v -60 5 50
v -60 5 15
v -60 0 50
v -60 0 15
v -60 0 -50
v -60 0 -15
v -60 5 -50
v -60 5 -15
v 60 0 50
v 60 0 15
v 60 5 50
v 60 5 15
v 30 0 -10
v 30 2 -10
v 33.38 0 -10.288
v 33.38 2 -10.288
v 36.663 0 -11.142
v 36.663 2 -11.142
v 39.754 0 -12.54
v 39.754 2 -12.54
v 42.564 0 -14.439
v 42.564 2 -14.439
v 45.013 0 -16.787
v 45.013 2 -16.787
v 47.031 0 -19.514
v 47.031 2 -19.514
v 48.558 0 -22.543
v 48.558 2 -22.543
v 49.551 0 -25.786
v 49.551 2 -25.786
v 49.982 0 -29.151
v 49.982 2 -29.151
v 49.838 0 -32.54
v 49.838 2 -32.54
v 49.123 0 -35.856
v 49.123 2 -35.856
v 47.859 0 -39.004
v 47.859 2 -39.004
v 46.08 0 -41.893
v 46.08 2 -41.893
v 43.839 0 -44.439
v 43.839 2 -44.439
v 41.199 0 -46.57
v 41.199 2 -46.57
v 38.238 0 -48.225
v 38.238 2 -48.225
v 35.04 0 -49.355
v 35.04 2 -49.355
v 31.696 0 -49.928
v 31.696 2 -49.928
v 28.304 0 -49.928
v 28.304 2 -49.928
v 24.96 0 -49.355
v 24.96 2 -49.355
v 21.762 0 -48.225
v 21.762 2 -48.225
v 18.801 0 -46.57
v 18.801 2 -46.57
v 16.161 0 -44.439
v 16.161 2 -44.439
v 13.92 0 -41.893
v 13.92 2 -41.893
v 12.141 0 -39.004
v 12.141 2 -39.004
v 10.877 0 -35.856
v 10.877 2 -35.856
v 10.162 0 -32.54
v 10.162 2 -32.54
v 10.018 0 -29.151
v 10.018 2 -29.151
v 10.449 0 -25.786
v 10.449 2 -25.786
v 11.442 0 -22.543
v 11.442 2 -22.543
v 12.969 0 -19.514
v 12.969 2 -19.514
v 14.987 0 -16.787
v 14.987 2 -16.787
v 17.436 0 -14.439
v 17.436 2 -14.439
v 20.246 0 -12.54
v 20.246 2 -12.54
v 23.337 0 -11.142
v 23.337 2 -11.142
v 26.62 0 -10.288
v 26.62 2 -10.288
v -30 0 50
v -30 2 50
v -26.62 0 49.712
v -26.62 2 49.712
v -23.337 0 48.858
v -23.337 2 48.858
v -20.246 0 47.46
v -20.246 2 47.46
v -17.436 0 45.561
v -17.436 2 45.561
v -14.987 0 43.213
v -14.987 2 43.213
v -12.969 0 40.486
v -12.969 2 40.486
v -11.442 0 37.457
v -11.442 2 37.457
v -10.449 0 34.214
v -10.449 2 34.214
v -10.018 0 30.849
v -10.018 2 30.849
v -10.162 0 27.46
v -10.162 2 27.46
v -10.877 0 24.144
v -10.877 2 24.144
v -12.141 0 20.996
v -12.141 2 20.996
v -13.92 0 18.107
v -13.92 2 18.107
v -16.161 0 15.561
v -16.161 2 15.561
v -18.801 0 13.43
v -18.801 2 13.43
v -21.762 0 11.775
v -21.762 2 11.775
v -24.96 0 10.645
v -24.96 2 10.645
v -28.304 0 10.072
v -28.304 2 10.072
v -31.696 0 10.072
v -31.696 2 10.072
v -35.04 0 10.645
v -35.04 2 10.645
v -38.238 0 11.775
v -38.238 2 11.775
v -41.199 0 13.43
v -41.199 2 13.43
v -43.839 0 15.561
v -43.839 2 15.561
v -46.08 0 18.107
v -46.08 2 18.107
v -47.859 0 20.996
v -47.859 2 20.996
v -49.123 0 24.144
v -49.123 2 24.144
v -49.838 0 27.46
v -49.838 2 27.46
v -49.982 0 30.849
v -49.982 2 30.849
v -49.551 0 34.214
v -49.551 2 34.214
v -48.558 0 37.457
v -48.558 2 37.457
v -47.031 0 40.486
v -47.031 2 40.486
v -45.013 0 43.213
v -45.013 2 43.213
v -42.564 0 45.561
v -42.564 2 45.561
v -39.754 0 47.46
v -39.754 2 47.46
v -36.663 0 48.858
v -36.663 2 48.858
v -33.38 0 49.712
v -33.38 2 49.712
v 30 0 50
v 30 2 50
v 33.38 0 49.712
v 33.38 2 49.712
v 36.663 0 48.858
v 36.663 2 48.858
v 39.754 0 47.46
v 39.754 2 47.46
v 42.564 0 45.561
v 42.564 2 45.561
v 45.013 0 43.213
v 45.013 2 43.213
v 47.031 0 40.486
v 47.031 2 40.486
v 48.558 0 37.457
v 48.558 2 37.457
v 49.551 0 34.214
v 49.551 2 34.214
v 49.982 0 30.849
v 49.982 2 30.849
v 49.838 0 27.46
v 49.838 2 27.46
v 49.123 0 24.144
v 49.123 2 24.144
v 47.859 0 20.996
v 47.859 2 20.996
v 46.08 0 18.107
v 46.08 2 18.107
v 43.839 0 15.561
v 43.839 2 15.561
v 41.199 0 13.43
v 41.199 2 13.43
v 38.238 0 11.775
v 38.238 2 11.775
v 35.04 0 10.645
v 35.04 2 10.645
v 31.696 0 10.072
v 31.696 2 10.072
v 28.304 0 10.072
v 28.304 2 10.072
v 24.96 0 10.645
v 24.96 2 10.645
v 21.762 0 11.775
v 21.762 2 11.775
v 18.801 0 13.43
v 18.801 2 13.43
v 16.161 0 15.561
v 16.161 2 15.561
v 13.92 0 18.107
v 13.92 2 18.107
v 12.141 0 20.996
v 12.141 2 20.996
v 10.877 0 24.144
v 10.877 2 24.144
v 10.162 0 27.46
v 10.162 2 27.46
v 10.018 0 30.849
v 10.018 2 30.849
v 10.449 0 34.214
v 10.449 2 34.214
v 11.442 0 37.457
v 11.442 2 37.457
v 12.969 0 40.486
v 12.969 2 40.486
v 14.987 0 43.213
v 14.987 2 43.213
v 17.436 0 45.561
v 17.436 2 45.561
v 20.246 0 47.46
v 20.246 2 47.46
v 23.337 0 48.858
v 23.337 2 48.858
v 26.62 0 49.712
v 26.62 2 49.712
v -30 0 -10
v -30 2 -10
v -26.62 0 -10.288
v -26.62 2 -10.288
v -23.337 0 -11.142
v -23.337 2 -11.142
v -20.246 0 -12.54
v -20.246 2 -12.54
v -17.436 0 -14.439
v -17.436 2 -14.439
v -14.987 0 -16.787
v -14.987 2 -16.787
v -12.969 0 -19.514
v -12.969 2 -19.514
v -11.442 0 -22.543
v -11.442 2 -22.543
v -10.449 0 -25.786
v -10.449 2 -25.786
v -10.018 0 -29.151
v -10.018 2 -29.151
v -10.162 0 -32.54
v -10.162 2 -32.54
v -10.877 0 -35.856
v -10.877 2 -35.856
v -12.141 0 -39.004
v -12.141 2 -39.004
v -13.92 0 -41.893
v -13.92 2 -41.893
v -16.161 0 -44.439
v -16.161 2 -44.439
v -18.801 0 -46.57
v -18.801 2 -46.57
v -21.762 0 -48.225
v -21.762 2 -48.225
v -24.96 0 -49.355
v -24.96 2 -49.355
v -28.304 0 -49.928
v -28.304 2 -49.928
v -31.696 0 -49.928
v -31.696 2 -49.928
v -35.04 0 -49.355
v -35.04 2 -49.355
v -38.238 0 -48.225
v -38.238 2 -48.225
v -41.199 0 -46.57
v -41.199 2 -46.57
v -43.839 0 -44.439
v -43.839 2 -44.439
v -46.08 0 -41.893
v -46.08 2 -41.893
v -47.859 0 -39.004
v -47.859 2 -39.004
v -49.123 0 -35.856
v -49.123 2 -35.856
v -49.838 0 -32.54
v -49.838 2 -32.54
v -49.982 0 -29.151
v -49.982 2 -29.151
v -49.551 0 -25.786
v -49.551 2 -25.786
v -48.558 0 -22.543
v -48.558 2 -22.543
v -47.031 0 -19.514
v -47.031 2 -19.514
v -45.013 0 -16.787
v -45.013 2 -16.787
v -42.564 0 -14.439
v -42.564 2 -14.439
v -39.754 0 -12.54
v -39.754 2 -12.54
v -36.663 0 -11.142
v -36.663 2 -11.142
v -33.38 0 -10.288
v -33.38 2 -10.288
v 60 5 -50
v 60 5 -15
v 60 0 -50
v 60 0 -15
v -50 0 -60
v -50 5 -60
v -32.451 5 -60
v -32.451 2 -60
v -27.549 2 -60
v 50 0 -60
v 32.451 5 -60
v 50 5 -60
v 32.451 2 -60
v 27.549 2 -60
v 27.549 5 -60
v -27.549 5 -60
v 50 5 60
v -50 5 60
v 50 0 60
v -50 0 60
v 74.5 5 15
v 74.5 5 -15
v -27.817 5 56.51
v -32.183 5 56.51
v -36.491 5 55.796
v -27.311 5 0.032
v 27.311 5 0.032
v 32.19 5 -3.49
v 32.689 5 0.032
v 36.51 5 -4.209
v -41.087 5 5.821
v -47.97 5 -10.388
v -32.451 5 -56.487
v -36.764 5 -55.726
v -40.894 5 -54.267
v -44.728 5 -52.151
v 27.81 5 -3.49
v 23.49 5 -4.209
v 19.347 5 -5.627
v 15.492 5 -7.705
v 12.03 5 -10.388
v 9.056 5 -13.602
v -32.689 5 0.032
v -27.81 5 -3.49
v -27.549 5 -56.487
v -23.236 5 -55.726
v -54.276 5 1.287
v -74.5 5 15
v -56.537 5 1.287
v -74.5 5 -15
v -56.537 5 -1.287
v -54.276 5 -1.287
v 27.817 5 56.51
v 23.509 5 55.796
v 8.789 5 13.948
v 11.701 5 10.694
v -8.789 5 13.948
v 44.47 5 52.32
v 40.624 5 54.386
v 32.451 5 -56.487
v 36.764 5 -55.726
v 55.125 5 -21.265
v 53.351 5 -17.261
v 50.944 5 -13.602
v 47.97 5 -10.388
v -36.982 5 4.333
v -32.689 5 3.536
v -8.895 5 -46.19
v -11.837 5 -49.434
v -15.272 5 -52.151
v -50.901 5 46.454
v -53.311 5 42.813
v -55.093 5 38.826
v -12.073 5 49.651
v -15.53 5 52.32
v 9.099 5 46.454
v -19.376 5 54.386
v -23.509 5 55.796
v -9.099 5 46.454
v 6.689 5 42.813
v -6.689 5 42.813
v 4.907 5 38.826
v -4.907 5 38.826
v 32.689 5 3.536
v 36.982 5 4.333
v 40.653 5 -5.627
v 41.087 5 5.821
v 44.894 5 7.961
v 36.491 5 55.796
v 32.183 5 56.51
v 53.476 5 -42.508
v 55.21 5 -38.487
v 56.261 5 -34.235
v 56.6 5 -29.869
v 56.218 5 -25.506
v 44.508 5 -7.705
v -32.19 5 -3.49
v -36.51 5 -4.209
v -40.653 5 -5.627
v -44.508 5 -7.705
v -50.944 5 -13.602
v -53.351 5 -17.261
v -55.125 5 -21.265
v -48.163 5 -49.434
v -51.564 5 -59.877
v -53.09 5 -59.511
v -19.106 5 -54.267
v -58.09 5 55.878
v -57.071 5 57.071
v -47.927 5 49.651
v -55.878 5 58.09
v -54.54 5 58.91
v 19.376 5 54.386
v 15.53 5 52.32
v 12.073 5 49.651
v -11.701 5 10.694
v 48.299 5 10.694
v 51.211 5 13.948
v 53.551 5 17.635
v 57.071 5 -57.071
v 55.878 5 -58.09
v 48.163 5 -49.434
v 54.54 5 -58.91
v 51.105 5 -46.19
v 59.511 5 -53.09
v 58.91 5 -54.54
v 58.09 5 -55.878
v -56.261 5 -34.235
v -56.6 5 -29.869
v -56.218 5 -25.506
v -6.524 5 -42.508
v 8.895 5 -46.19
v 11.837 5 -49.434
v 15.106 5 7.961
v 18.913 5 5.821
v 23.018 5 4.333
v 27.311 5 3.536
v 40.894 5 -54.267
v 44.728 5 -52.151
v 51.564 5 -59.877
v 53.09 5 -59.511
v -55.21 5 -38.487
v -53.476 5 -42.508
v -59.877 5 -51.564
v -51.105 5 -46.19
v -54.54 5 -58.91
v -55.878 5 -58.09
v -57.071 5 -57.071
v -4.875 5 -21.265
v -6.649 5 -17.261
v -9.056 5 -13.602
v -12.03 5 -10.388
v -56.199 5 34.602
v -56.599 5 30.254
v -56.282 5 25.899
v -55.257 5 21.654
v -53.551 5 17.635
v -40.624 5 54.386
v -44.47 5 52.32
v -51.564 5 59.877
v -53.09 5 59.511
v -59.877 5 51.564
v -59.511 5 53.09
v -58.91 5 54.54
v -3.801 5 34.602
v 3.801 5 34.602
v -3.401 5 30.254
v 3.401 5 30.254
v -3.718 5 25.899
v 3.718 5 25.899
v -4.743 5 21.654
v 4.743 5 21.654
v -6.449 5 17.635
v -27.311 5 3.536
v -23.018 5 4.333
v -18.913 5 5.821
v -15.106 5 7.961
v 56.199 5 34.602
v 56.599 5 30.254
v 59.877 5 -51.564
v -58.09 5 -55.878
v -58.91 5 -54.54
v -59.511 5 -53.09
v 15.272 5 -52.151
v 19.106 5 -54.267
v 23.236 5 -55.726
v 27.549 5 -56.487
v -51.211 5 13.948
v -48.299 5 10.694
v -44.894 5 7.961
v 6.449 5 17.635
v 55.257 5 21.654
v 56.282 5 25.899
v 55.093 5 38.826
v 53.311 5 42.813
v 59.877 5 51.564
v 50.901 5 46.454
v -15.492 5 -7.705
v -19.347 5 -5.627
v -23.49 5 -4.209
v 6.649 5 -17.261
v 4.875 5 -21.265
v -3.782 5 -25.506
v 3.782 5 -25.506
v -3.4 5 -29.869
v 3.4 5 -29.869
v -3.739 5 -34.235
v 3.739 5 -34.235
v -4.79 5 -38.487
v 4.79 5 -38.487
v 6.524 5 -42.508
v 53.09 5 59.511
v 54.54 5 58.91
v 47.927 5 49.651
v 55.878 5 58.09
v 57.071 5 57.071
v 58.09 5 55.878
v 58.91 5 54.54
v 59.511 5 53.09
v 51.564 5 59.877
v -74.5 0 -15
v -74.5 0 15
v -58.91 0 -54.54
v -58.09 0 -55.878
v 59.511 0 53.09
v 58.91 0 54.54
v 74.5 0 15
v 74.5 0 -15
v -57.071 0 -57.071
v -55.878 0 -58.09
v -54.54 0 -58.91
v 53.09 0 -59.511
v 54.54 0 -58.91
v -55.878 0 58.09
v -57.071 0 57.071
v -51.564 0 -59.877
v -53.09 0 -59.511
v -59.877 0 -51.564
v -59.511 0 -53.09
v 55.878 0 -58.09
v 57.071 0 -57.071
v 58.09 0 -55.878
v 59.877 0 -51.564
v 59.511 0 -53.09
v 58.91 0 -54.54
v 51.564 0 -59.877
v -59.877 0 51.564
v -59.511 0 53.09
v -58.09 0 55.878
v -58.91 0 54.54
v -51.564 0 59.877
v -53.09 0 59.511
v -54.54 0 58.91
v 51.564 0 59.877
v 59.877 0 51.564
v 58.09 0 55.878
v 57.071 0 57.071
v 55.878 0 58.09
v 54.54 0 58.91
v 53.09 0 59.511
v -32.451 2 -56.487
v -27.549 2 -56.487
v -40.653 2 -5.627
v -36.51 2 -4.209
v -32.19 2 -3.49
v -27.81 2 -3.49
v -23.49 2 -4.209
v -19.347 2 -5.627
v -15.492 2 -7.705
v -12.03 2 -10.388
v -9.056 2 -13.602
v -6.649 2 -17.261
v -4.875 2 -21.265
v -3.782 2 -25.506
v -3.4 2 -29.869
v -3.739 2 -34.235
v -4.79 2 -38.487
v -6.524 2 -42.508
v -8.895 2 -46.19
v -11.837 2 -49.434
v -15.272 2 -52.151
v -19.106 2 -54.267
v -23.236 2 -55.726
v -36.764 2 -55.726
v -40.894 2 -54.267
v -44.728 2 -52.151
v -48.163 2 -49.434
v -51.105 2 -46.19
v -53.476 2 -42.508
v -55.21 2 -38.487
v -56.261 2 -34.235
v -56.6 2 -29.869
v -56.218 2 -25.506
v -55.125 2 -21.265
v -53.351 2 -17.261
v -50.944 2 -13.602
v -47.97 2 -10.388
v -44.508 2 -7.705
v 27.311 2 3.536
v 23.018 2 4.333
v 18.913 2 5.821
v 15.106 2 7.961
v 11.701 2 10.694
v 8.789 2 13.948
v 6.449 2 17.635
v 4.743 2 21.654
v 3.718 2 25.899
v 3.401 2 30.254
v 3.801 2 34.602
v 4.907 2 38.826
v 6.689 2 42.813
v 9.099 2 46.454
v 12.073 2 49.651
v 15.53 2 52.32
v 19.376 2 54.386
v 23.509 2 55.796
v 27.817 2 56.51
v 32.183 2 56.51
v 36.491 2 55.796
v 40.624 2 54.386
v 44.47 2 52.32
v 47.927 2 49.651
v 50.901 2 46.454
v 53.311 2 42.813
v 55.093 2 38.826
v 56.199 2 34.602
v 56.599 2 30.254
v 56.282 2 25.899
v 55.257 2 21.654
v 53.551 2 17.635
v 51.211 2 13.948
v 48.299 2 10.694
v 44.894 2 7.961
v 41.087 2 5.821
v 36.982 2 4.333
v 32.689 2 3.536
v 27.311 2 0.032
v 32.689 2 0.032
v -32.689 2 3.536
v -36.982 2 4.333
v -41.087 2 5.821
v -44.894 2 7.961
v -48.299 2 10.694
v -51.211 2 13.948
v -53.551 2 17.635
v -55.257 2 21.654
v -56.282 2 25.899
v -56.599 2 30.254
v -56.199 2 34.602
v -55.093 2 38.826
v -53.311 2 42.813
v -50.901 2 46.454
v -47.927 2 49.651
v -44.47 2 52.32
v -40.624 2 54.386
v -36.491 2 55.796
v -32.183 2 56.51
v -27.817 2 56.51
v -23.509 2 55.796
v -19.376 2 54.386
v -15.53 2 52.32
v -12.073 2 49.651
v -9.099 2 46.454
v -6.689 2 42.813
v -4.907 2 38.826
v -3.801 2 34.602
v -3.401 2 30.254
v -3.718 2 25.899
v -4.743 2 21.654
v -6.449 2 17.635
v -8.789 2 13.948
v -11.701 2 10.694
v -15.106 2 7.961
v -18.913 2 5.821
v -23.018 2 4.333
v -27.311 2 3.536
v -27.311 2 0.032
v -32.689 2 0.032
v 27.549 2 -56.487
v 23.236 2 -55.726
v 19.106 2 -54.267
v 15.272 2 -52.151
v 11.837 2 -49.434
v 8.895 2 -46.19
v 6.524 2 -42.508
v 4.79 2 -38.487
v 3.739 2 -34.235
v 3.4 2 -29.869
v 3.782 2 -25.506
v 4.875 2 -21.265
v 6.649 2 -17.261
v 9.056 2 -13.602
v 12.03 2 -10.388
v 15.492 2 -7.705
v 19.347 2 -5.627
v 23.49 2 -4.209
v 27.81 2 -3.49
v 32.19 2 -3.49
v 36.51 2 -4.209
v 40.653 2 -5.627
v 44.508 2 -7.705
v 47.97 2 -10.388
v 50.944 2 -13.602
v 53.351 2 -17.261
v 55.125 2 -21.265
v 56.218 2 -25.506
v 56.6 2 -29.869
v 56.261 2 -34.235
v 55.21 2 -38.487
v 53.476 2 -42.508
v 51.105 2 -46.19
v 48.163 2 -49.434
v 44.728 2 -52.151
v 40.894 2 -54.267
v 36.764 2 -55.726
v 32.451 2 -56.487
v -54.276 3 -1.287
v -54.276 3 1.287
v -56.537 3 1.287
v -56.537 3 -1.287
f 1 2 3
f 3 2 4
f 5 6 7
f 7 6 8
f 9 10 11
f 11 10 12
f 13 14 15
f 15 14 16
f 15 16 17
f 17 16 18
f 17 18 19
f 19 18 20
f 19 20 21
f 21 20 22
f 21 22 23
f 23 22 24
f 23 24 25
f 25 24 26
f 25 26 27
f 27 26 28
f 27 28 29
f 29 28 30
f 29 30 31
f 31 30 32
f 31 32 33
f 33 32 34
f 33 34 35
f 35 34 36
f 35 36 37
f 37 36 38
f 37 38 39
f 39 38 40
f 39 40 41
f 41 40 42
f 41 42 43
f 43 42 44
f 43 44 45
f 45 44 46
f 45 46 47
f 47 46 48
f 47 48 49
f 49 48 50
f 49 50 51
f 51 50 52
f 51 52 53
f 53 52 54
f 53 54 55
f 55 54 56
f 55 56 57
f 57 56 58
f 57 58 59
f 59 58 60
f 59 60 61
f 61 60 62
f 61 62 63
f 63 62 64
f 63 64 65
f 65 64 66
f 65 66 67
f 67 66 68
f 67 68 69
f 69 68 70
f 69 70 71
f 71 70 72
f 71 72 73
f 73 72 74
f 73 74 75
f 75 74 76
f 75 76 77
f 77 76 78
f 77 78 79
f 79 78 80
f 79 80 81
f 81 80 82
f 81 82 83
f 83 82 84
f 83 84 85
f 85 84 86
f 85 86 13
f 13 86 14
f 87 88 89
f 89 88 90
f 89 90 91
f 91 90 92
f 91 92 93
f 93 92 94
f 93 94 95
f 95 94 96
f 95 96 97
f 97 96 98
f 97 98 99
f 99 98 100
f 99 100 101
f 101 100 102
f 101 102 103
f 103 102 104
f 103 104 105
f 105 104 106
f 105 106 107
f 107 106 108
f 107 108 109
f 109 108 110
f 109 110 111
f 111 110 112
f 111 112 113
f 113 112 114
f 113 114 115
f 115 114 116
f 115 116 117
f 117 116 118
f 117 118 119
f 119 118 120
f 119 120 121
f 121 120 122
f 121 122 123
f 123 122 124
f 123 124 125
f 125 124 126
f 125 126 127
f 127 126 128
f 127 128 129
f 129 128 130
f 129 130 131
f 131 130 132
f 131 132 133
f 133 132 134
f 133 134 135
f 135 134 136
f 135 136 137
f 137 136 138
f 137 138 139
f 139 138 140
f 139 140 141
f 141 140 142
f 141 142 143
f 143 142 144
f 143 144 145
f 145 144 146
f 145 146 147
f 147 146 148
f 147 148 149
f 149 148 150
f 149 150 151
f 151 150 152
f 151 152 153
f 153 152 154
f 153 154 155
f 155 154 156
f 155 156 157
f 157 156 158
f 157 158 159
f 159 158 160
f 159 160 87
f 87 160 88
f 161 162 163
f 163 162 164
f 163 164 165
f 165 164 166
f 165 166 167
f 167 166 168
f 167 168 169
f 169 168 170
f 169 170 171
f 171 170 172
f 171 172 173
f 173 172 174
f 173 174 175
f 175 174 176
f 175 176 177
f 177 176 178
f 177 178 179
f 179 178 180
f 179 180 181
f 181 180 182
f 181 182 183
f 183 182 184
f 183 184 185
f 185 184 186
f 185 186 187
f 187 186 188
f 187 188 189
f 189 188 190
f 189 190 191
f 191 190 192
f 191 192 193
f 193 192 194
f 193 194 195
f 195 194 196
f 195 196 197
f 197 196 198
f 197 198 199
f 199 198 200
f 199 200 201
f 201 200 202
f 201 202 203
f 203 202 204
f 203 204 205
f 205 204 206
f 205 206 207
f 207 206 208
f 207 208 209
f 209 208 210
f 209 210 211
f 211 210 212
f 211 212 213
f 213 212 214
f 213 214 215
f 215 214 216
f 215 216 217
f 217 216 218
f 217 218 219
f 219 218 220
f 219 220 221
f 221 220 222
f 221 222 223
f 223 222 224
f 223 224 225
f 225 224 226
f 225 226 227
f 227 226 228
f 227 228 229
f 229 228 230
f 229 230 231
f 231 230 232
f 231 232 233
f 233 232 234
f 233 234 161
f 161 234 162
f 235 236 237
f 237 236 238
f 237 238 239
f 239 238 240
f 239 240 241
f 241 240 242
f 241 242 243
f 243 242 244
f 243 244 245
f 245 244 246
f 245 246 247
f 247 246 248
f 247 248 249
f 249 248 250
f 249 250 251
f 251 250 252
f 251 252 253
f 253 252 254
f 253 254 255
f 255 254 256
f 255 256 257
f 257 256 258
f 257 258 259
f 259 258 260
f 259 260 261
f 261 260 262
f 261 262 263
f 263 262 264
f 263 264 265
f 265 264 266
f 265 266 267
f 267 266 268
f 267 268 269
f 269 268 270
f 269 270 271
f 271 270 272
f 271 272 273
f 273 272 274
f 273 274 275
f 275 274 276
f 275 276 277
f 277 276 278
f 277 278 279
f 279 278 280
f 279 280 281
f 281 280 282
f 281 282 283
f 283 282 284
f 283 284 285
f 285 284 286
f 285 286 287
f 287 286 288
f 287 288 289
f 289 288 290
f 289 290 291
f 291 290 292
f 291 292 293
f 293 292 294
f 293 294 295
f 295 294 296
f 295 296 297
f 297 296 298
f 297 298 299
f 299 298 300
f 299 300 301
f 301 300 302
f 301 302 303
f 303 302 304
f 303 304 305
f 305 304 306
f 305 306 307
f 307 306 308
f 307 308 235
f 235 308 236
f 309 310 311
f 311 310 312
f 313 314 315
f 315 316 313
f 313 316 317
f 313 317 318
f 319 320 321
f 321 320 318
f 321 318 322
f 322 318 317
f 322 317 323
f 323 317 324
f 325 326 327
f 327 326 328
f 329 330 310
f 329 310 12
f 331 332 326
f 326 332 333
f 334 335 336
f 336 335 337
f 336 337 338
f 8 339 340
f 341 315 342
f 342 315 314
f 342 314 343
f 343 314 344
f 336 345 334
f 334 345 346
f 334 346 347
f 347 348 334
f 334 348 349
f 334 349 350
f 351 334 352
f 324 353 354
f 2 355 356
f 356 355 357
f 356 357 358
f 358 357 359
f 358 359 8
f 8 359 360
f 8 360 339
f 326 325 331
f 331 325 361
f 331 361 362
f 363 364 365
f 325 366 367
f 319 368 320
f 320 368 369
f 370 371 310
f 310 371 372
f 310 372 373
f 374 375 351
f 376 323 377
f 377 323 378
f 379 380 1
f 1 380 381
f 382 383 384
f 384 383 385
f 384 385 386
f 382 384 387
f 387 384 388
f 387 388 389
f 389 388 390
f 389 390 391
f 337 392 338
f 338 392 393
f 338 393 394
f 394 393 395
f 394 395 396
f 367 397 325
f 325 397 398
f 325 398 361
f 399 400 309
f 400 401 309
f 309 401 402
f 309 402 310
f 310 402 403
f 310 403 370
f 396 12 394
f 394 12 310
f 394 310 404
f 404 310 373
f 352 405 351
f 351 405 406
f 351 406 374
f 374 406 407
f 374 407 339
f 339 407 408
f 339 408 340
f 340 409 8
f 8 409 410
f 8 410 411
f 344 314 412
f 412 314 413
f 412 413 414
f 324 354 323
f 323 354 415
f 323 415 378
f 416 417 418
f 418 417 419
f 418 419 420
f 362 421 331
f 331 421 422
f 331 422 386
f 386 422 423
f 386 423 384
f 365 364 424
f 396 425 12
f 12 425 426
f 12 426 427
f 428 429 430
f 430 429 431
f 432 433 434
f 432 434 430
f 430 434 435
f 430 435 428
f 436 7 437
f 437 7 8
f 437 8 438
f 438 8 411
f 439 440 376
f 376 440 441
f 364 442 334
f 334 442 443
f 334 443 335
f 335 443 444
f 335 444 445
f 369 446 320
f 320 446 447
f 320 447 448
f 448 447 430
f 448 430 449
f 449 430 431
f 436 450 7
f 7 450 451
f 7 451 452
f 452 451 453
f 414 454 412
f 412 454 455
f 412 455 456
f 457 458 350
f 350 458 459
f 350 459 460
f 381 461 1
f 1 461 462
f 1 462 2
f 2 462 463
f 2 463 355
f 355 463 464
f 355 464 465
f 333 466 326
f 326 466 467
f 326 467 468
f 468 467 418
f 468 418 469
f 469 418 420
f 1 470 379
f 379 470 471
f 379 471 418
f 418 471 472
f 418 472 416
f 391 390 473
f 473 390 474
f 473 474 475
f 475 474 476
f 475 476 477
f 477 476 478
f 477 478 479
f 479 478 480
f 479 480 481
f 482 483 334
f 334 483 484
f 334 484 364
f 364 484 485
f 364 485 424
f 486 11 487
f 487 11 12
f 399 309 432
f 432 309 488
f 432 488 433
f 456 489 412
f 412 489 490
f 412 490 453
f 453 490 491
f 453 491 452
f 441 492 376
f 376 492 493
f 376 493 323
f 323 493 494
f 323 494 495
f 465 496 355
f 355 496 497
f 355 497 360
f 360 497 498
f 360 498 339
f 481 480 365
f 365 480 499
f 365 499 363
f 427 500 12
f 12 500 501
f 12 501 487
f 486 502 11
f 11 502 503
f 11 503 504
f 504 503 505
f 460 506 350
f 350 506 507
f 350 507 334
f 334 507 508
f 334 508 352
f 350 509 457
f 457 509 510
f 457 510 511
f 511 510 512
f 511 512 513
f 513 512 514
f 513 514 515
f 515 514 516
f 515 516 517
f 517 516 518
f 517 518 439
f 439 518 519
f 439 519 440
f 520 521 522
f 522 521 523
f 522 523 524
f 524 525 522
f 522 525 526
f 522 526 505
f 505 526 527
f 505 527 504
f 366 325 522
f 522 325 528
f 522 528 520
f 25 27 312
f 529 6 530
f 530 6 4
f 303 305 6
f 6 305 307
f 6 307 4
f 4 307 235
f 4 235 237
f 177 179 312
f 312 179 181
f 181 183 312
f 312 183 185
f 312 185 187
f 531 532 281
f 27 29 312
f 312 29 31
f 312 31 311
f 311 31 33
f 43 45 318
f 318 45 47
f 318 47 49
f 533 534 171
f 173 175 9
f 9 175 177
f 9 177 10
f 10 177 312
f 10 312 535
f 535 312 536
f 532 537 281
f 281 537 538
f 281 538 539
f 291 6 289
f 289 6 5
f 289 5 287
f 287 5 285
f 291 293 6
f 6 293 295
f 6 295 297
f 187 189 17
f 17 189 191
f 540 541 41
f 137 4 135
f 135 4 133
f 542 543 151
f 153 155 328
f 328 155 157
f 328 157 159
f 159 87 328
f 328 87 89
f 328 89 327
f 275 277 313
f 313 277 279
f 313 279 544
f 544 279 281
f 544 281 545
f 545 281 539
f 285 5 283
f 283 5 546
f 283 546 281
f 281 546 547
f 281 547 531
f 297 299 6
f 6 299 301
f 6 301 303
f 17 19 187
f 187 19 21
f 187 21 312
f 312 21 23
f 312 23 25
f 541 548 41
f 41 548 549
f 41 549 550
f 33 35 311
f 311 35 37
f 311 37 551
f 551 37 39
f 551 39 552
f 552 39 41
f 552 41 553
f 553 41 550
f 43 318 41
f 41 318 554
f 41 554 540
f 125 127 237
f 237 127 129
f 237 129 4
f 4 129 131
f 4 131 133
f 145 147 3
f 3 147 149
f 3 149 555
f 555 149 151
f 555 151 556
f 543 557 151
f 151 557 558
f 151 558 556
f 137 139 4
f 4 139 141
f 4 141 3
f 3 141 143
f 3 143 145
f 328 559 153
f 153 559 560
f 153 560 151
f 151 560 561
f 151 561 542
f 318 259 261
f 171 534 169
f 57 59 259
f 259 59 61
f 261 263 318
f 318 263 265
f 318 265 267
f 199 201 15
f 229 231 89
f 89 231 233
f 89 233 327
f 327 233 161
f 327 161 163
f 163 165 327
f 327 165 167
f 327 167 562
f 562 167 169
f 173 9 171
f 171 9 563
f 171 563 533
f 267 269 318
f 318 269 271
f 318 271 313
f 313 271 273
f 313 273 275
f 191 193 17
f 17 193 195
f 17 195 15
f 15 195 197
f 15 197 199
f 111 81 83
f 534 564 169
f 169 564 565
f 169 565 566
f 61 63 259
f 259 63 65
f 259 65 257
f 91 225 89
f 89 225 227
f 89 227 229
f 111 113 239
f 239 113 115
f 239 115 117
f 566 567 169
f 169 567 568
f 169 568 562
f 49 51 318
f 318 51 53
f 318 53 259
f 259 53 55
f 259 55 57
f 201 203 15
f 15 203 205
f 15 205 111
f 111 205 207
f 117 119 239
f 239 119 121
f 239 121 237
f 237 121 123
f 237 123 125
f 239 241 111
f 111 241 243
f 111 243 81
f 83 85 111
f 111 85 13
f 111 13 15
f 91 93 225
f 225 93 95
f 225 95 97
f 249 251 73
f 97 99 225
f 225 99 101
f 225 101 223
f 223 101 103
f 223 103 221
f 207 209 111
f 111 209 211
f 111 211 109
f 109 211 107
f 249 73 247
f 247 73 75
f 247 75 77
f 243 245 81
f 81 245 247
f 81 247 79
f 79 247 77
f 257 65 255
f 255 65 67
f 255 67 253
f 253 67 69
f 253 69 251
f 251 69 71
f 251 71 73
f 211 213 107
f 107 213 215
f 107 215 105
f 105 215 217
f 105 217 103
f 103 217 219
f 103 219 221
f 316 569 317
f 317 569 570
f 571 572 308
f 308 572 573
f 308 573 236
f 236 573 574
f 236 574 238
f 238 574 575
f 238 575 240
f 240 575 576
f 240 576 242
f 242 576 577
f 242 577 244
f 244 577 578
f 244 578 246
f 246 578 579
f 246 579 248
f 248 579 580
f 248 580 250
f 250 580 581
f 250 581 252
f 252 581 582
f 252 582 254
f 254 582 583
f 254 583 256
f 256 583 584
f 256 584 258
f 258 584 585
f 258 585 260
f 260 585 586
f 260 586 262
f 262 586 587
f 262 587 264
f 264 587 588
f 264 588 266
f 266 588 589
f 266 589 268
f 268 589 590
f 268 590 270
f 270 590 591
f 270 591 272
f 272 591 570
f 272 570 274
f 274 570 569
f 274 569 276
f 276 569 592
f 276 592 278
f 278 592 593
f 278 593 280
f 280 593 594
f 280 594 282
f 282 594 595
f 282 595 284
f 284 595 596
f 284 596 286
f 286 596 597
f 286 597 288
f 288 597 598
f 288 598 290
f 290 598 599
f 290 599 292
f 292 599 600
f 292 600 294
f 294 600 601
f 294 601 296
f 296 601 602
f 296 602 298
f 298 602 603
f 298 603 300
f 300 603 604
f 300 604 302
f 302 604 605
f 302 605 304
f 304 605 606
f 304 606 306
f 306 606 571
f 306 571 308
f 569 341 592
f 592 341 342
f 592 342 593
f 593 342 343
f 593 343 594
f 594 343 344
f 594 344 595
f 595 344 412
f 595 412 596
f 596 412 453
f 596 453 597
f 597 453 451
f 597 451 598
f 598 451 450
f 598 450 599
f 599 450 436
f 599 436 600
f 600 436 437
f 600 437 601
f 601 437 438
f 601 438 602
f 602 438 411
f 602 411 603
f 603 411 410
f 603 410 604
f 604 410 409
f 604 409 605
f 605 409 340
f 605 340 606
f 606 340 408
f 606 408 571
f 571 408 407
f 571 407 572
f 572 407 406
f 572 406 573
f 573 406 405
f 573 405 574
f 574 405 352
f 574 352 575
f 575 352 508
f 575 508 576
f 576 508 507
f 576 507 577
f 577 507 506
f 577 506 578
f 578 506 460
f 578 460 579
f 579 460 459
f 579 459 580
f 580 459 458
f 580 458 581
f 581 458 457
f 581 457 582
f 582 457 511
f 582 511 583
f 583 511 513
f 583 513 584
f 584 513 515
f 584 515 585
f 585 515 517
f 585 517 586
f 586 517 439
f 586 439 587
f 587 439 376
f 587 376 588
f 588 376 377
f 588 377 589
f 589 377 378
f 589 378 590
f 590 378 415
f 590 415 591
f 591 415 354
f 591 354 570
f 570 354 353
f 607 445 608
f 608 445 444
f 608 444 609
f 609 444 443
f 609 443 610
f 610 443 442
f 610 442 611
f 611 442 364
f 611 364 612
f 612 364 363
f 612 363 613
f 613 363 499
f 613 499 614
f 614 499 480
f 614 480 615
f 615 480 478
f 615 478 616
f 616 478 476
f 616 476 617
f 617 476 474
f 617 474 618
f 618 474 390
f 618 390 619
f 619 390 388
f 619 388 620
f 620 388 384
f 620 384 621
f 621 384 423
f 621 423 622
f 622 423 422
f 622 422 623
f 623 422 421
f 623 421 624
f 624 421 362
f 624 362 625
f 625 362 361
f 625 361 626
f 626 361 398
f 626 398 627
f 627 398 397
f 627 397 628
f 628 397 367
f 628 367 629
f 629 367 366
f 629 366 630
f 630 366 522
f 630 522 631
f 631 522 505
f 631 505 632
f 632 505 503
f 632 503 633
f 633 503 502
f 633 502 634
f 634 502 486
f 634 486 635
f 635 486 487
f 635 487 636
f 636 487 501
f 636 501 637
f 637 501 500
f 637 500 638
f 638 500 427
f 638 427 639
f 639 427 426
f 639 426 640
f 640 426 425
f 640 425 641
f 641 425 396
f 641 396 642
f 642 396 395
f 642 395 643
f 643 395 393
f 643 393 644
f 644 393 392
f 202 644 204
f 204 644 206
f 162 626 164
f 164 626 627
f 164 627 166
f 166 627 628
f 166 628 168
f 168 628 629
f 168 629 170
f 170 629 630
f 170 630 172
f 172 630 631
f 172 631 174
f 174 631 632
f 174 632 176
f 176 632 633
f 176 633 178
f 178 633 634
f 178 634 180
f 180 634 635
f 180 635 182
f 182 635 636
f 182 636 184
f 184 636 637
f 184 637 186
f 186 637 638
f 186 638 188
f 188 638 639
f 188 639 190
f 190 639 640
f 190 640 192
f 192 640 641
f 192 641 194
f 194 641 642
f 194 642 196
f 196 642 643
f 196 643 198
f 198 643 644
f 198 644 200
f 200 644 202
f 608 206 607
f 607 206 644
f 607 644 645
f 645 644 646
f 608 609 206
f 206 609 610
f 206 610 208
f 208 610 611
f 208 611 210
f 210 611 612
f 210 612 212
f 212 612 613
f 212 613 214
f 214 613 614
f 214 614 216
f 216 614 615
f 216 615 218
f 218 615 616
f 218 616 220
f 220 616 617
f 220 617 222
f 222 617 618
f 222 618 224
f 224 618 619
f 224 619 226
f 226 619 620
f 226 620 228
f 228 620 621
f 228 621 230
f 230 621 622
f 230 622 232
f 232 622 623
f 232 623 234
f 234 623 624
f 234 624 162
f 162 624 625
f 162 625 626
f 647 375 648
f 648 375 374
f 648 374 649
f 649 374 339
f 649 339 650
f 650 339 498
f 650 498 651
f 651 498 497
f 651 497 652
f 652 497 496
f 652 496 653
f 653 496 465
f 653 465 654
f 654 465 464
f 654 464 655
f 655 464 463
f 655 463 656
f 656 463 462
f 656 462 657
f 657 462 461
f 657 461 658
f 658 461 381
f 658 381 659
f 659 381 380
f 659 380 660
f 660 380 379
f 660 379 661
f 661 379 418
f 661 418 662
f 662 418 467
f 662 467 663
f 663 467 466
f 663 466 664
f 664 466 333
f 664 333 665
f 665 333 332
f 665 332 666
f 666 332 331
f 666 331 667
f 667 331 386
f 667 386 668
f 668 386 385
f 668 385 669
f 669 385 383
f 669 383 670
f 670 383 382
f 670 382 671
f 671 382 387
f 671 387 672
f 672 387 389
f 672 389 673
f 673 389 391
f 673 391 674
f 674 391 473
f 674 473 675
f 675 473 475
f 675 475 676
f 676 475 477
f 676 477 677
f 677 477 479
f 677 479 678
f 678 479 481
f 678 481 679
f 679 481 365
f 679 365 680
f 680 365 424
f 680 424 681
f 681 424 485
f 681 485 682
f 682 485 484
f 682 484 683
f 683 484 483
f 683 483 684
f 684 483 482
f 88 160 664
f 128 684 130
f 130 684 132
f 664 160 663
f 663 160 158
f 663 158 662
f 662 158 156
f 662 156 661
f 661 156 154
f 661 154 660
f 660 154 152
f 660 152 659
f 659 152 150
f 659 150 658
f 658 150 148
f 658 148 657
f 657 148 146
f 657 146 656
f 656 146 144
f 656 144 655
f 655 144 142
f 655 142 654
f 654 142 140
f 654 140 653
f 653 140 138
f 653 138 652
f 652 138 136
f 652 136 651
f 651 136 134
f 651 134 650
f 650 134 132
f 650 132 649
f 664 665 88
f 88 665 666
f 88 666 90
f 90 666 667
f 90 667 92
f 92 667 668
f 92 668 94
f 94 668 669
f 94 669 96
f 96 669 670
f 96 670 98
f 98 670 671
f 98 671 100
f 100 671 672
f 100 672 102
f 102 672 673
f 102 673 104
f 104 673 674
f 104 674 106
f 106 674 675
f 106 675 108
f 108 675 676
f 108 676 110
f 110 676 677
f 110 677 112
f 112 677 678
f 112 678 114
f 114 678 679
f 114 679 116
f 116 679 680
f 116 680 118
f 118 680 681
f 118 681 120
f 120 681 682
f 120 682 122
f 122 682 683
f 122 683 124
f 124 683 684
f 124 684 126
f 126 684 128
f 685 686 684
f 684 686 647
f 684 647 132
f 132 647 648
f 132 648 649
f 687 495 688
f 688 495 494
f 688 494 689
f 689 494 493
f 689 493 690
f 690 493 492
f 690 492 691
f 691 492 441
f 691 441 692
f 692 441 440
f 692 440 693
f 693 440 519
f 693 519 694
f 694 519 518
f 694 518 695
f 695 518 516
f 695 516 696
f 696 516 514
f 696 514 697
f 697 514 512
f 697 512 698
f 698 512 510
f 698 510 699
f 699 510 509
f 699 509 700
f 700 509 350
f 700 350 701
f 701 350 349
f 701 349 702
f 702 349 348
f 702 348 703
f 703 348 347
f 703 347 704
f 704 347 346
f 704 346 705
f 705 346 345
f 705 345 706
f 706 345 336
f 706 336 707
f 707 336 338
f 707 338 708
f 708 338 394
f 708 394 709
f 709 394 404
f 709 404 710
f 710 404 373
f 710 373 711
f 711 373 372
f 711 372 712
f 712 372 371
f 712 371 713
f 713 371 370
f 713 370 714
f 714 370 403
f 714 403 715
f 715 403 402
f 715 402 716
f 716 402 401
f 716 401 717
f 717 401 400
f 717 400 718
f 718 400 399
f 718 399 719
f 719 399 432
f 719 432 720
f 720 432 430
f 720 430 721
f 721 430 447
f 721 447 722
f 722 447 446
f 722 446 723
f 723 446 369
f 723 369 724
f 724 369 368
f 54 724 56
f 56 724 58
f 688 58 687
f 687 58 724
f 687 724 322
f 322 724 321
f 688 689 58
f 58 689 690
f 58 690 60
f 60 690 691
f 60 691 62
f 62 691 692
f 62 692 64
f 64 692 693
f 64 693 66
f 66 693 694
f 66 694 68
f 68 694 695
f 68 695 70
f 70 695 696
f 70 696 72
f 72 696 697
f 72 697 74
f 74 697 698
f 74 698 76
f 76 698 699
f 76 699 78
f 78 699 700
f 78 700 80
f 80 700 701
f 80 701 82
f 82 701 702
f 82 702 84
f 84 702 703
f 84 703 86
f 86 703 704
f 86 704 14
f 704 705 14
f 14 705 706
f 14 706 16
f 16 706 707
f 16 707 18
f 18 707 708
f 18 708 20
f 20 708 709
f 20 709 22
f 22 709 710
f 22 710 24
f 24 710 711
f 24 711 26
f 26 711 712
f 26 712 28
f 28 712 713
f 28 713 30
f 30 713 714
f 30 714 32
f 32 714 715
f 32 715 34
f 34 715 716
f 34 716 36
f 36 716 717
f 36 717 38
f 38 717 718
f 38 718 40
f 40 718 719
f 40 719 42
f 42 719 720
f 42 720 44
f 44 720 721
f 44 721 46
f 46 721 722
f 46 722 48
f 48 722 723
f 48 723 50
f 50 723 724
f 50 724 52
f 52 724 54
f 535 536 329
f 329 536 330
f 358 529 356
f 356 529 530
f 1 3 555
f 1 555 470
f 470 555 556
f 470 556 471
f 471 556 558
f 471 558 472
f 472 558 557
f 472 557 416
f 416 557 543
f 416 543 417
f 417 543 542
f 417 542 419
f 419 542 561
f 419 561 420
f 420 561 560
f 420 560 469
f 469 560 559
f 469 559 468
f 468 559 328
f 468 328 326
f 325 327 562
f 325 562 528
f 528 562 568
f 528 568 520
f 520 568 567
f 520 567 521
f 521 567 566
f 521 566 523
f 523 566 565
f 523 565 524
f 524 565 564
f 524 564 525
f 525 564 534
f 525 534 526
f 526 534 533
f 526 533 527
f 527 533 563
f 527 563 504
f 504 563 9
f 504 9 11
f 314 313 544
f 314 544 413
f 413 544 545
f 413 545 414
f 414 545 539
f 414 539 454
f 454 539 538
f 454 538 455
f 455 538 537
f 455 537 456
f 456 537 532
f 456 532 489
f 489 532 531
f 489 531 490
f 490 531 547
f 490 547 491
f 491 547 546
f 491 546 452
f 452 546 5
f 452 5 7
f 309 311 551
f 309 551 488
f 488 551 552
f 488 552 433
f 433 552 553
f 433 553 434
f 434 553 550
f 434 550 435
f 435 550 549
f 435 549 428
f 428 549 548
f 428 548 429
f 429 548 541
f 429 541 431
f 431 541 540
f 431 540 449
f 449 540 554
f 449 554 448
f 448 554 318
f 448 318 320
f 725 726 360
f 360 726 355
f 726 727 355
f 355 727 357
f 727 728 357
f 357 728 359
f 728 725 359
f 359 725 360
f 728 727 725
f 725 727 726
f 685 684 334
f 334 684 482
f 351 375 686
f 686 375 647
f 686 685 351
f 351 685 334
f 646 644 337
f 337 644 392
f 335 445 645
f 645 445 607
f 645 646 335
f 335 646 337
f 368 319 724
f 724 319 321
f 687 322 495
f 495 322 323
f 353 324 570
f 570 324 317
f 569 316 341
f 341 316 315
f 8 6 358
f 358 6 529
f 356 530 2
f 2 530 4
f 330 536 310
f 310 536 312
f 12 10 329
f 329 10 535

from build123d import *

# Parameters (mm, degrees)
SKETCH1_W           = 120
SKETCH1_H           = 120
BOSS_EXTRUDE1_DEPTH = 5
SKETCH2_R           = 20
CUT_EXTRUDE4_DEPTH  = 5
SKETCH3_R           = 26.6
SKETCH3_R_2         = 20
CUT_EXTRUDE5_DEPTH  = 3
SKETCH4_W           = 60
SKETCH4_H           = 5
BOSS_EXTRUDE2_DEPTH = 14.5
SKETCH5_W           = 60
SKETCH5_H           = 5
BOSS_EXTRUDE3_DEPTH = 14.5
FILLET3_R           = 10
FILLET4_R           = 10
FILLET5_R           = 10
FILLET6_R           = 10
SKETCH10_W          = 2.261137553
SKETCH10_H          = 2.574285836
CUT_EXTRUDE7_DEPTH  = 2
SKETCH12_W          = 5.377639696
SKETCH12_H          = 6.736845814
CUT_EXTRUDE10_DEPTH = 3
SKETCH14_W          = 4.90266265
SKETCH14_H          = 7.042630192
CUT_EXTRUDE11_DEPTH = 3
SKETCH15_W          = 14.5
SKETCH15_H          = 15
CUT_EXTRUDE12_DEPTH = 10


with BuildPart() as part:
    # Sketch1 → Boss-Extrude1 (new body)
    with BuildSketch(Plane(origin=(0, 0, 0), x_dir=(1, 0, 0), z_dir=(0, 1, 0))):
        Rectangle(SKETCH1_W, SKETCH1_H)
    extrude(amount=BOSS_EXTRUDE1_DEPTH)

    # Sketch2 → Cut-Extrude4 (cut)
    with BuildSketch(Plane(origin=(0, 5, 0), x_dir=(1, 0, 0), z_dir=(0, 1, 0))):
        with Locations(Location((30, 30, 0), (0, 0, 270))):
            Circle(SKETCH2_R)
        with Locations(Location((-30, -30, 0), (0, 0, 270))):
            Circle(SKETCH2_R)
        with Locations(Location((30, -30, 0), (0, 0, 270))):
            Circle(SKETCH2_R)
        with Locations(Location((-30, 30, 0), (0, 0, 270))):
            Circle(SKETCH2_R)
    extrude(amount=-CUT_EXTRUDE4_DEPTH, mode=Mode.SUBTRACT)

    # Sketch3 → Cut-Extrude5 (cut)
    # profile 1 of 4: a face of its own
    with BuildSketch(Plane(origin=(0, 5, 0), x_dir=(1, 0, 0), z_dir=(0, 1, 0))):
        with Locations(Location((30, 30, 0), (0, 0, 270))):
            Circle(SKETCH3_R)
        with Locations(Location((30, 30, 0), (0, 0, 270))):
            Circle(SKETCH3_R_2, mode=Mode.SUBTRACT)
    # profile 2 of 4: a face of its own
    with BuildSketch(Plane(origin=(0, 5, 0), x_dir=(1, 0, 0), z_dir=(0, 1, 0))):
        with Locations(Location((-30, -30, 0), (0, 0, 270))):
            Circle(SKETCH3_R)
        with Locations(Location((-30, -30, 0), (0, 0, 270))):
            Circle(SKETCH3_R_2, mode=Mode.SUBTRACT)
    # profile 3 of 4: a face of its own
    with BuildSketch(Plane(origin=(0, 5, 0), x_dir=(1, 0, 0), z_dir=(0, 1, 0))):
        with Locations(Location((30, -30, 0), (0, 0, 270))):
            Circle(SKETCH3_R)
        with Locations(Location((30, -30, 0), (0, 0, 270))):
            Circle(SKETCH3_R_2, mode=Mode.SUBTRACT)
    # profile 4 of 4: a face of its own
    with BuildSketch(Plane(origin=(0, 5, 0), x_dir=(1, 0, 0), z_dir=(0, 1, 0))):
        with Locations(Location((-30, 30, 0), (0, 0, 270))):
            Circle(SKETCH3_R)
    extrude(amount=-CUT_EXTRUDE5_DEPTH, mode=Mode.SUBTRACT)

    # Sketch4 → Boss-Extrude2 (add)
    with BuildSketch(Plane(origin=(60, 0, 0), x_dir=(0, 0, -1), z_dir=(1, 0, 0))):
        with Locations((0, 2.5)):
            Rectangle(SKETCH4_W, SKETCH4_H)
    extrude(amount=BOSS_EXTRUDE2_DEPTH)

    # Sketch5 → Boss-Extrude3 (add)
    with BuildSketch(Plane.ZY.offset(60)):
        with Locations((0, 2.5)):
            Rectangle(SKETCH5_W, SKETCH5_H)
    extrude(amount=BOSS_EXTRUDE3_DEPTH)

    # Fillet3
    fillet3_edges = [part.edges().sort_by_distance(p)[0] for p in [
        (-60, 2.5, 60),
    ]]
    fillet(fillet3_edges, radius=FILLET3_R)

    # Fillet4
    fillet4_edges = [part.edges().sort_by_distance(p)[0] for p in [
        (60, 2.5, 60),
    ]]
    fillet(fillet4_edges, radius=FILLET4_R)

    # Fillet5
    fillet5_edges = [part.edges().sort_by_distance(p)[0] for p in [
        (-60, 2.5, -60),
    ]]
    fillet(fillet5_edges, radius=FILLET5_R)

    # Fillet6
    fillet6_edges = [part.edges().sort_by_distance(p)[0] for p in [
        (60, 2.5, -60),
    ]]
    fillet(fillet6_edges, radius=FILLET6_R)

    # Sketch10 → Cut-Extrude7 (cut)
    with BuildSketch(Plane(origin=(0, 5, 0), x_dir=(1, 0, 0), z_dir=(0, 1, 0))):
        with Locations((-55.406362831, 0)):
            Rectangle(SKETCH10_W, SKETCH10_H)
    extrude(amount=-CUT_EXTRUDE7_DEPTH, mode=Mode.SUBTRACT)

    # Sketch12 → Cut-Extrude10 (cut)
    with BuildSketch(Plane(origin=(0, 5, 0), x_dir=(1, 0, 0), z_dir=(0, 1, 0))):
        with Locations((-30, -3.4)):
            Rectangle(SKETCH12_W, SKETCH12_H)
        with Locations((30, -3.4)):
            Rectangle(SKETCH12_W, SKETCH12_H)
    extrude(amount=-CUT_EXTRUDE10_DEPTH, mode=Mode.SUBTRACT)

    # Sketch14 → Cut-Extrude11 (cut)
    with BuildSketch(Plane(origin=(0, 5, 0), x_dir=(1, 0, 0), z_dir=(0, 1, 0))):
        with Locations((-30, 56.6)):
            Rectangle(SKETCH14_W, SKETCH14_H)
        with Locations((30, 56.6)):
            Rectangle(SKETCH14_W, SKETCH14_H)
    extrude(amount=-CUT_EXTRUDE11_DEPTH, mode=Mode.SUBTRACT)

    # Sketch15 → Cut-Extrude12 (cut)
    with BuildSketch(Plane(origin=(0, 5, 0), x_dir=(1, 0, 0), z_dir=(0, 1, 0))):
        with Locations((-67.25, 22.5)):
            Rectangle(SKETCH15_W, SKETCH15_H)
        with Locations((67.25, 22.5)):
            Rectangle(SKETCH15_W, SKETCH15_H)
        with Locations((67.25, -22.5)):
            Rectangle(SKETCH15_W, SKETCH15_H)
        with Locations((-67.25, -22.5)):
            Rectangle(SKETCH15_W, SKETCH15_H)
    extrude(amount=-CUT_EXTRUDE12_DEPTH, mode=Mode.SUBTRACT)


solid = part.part
